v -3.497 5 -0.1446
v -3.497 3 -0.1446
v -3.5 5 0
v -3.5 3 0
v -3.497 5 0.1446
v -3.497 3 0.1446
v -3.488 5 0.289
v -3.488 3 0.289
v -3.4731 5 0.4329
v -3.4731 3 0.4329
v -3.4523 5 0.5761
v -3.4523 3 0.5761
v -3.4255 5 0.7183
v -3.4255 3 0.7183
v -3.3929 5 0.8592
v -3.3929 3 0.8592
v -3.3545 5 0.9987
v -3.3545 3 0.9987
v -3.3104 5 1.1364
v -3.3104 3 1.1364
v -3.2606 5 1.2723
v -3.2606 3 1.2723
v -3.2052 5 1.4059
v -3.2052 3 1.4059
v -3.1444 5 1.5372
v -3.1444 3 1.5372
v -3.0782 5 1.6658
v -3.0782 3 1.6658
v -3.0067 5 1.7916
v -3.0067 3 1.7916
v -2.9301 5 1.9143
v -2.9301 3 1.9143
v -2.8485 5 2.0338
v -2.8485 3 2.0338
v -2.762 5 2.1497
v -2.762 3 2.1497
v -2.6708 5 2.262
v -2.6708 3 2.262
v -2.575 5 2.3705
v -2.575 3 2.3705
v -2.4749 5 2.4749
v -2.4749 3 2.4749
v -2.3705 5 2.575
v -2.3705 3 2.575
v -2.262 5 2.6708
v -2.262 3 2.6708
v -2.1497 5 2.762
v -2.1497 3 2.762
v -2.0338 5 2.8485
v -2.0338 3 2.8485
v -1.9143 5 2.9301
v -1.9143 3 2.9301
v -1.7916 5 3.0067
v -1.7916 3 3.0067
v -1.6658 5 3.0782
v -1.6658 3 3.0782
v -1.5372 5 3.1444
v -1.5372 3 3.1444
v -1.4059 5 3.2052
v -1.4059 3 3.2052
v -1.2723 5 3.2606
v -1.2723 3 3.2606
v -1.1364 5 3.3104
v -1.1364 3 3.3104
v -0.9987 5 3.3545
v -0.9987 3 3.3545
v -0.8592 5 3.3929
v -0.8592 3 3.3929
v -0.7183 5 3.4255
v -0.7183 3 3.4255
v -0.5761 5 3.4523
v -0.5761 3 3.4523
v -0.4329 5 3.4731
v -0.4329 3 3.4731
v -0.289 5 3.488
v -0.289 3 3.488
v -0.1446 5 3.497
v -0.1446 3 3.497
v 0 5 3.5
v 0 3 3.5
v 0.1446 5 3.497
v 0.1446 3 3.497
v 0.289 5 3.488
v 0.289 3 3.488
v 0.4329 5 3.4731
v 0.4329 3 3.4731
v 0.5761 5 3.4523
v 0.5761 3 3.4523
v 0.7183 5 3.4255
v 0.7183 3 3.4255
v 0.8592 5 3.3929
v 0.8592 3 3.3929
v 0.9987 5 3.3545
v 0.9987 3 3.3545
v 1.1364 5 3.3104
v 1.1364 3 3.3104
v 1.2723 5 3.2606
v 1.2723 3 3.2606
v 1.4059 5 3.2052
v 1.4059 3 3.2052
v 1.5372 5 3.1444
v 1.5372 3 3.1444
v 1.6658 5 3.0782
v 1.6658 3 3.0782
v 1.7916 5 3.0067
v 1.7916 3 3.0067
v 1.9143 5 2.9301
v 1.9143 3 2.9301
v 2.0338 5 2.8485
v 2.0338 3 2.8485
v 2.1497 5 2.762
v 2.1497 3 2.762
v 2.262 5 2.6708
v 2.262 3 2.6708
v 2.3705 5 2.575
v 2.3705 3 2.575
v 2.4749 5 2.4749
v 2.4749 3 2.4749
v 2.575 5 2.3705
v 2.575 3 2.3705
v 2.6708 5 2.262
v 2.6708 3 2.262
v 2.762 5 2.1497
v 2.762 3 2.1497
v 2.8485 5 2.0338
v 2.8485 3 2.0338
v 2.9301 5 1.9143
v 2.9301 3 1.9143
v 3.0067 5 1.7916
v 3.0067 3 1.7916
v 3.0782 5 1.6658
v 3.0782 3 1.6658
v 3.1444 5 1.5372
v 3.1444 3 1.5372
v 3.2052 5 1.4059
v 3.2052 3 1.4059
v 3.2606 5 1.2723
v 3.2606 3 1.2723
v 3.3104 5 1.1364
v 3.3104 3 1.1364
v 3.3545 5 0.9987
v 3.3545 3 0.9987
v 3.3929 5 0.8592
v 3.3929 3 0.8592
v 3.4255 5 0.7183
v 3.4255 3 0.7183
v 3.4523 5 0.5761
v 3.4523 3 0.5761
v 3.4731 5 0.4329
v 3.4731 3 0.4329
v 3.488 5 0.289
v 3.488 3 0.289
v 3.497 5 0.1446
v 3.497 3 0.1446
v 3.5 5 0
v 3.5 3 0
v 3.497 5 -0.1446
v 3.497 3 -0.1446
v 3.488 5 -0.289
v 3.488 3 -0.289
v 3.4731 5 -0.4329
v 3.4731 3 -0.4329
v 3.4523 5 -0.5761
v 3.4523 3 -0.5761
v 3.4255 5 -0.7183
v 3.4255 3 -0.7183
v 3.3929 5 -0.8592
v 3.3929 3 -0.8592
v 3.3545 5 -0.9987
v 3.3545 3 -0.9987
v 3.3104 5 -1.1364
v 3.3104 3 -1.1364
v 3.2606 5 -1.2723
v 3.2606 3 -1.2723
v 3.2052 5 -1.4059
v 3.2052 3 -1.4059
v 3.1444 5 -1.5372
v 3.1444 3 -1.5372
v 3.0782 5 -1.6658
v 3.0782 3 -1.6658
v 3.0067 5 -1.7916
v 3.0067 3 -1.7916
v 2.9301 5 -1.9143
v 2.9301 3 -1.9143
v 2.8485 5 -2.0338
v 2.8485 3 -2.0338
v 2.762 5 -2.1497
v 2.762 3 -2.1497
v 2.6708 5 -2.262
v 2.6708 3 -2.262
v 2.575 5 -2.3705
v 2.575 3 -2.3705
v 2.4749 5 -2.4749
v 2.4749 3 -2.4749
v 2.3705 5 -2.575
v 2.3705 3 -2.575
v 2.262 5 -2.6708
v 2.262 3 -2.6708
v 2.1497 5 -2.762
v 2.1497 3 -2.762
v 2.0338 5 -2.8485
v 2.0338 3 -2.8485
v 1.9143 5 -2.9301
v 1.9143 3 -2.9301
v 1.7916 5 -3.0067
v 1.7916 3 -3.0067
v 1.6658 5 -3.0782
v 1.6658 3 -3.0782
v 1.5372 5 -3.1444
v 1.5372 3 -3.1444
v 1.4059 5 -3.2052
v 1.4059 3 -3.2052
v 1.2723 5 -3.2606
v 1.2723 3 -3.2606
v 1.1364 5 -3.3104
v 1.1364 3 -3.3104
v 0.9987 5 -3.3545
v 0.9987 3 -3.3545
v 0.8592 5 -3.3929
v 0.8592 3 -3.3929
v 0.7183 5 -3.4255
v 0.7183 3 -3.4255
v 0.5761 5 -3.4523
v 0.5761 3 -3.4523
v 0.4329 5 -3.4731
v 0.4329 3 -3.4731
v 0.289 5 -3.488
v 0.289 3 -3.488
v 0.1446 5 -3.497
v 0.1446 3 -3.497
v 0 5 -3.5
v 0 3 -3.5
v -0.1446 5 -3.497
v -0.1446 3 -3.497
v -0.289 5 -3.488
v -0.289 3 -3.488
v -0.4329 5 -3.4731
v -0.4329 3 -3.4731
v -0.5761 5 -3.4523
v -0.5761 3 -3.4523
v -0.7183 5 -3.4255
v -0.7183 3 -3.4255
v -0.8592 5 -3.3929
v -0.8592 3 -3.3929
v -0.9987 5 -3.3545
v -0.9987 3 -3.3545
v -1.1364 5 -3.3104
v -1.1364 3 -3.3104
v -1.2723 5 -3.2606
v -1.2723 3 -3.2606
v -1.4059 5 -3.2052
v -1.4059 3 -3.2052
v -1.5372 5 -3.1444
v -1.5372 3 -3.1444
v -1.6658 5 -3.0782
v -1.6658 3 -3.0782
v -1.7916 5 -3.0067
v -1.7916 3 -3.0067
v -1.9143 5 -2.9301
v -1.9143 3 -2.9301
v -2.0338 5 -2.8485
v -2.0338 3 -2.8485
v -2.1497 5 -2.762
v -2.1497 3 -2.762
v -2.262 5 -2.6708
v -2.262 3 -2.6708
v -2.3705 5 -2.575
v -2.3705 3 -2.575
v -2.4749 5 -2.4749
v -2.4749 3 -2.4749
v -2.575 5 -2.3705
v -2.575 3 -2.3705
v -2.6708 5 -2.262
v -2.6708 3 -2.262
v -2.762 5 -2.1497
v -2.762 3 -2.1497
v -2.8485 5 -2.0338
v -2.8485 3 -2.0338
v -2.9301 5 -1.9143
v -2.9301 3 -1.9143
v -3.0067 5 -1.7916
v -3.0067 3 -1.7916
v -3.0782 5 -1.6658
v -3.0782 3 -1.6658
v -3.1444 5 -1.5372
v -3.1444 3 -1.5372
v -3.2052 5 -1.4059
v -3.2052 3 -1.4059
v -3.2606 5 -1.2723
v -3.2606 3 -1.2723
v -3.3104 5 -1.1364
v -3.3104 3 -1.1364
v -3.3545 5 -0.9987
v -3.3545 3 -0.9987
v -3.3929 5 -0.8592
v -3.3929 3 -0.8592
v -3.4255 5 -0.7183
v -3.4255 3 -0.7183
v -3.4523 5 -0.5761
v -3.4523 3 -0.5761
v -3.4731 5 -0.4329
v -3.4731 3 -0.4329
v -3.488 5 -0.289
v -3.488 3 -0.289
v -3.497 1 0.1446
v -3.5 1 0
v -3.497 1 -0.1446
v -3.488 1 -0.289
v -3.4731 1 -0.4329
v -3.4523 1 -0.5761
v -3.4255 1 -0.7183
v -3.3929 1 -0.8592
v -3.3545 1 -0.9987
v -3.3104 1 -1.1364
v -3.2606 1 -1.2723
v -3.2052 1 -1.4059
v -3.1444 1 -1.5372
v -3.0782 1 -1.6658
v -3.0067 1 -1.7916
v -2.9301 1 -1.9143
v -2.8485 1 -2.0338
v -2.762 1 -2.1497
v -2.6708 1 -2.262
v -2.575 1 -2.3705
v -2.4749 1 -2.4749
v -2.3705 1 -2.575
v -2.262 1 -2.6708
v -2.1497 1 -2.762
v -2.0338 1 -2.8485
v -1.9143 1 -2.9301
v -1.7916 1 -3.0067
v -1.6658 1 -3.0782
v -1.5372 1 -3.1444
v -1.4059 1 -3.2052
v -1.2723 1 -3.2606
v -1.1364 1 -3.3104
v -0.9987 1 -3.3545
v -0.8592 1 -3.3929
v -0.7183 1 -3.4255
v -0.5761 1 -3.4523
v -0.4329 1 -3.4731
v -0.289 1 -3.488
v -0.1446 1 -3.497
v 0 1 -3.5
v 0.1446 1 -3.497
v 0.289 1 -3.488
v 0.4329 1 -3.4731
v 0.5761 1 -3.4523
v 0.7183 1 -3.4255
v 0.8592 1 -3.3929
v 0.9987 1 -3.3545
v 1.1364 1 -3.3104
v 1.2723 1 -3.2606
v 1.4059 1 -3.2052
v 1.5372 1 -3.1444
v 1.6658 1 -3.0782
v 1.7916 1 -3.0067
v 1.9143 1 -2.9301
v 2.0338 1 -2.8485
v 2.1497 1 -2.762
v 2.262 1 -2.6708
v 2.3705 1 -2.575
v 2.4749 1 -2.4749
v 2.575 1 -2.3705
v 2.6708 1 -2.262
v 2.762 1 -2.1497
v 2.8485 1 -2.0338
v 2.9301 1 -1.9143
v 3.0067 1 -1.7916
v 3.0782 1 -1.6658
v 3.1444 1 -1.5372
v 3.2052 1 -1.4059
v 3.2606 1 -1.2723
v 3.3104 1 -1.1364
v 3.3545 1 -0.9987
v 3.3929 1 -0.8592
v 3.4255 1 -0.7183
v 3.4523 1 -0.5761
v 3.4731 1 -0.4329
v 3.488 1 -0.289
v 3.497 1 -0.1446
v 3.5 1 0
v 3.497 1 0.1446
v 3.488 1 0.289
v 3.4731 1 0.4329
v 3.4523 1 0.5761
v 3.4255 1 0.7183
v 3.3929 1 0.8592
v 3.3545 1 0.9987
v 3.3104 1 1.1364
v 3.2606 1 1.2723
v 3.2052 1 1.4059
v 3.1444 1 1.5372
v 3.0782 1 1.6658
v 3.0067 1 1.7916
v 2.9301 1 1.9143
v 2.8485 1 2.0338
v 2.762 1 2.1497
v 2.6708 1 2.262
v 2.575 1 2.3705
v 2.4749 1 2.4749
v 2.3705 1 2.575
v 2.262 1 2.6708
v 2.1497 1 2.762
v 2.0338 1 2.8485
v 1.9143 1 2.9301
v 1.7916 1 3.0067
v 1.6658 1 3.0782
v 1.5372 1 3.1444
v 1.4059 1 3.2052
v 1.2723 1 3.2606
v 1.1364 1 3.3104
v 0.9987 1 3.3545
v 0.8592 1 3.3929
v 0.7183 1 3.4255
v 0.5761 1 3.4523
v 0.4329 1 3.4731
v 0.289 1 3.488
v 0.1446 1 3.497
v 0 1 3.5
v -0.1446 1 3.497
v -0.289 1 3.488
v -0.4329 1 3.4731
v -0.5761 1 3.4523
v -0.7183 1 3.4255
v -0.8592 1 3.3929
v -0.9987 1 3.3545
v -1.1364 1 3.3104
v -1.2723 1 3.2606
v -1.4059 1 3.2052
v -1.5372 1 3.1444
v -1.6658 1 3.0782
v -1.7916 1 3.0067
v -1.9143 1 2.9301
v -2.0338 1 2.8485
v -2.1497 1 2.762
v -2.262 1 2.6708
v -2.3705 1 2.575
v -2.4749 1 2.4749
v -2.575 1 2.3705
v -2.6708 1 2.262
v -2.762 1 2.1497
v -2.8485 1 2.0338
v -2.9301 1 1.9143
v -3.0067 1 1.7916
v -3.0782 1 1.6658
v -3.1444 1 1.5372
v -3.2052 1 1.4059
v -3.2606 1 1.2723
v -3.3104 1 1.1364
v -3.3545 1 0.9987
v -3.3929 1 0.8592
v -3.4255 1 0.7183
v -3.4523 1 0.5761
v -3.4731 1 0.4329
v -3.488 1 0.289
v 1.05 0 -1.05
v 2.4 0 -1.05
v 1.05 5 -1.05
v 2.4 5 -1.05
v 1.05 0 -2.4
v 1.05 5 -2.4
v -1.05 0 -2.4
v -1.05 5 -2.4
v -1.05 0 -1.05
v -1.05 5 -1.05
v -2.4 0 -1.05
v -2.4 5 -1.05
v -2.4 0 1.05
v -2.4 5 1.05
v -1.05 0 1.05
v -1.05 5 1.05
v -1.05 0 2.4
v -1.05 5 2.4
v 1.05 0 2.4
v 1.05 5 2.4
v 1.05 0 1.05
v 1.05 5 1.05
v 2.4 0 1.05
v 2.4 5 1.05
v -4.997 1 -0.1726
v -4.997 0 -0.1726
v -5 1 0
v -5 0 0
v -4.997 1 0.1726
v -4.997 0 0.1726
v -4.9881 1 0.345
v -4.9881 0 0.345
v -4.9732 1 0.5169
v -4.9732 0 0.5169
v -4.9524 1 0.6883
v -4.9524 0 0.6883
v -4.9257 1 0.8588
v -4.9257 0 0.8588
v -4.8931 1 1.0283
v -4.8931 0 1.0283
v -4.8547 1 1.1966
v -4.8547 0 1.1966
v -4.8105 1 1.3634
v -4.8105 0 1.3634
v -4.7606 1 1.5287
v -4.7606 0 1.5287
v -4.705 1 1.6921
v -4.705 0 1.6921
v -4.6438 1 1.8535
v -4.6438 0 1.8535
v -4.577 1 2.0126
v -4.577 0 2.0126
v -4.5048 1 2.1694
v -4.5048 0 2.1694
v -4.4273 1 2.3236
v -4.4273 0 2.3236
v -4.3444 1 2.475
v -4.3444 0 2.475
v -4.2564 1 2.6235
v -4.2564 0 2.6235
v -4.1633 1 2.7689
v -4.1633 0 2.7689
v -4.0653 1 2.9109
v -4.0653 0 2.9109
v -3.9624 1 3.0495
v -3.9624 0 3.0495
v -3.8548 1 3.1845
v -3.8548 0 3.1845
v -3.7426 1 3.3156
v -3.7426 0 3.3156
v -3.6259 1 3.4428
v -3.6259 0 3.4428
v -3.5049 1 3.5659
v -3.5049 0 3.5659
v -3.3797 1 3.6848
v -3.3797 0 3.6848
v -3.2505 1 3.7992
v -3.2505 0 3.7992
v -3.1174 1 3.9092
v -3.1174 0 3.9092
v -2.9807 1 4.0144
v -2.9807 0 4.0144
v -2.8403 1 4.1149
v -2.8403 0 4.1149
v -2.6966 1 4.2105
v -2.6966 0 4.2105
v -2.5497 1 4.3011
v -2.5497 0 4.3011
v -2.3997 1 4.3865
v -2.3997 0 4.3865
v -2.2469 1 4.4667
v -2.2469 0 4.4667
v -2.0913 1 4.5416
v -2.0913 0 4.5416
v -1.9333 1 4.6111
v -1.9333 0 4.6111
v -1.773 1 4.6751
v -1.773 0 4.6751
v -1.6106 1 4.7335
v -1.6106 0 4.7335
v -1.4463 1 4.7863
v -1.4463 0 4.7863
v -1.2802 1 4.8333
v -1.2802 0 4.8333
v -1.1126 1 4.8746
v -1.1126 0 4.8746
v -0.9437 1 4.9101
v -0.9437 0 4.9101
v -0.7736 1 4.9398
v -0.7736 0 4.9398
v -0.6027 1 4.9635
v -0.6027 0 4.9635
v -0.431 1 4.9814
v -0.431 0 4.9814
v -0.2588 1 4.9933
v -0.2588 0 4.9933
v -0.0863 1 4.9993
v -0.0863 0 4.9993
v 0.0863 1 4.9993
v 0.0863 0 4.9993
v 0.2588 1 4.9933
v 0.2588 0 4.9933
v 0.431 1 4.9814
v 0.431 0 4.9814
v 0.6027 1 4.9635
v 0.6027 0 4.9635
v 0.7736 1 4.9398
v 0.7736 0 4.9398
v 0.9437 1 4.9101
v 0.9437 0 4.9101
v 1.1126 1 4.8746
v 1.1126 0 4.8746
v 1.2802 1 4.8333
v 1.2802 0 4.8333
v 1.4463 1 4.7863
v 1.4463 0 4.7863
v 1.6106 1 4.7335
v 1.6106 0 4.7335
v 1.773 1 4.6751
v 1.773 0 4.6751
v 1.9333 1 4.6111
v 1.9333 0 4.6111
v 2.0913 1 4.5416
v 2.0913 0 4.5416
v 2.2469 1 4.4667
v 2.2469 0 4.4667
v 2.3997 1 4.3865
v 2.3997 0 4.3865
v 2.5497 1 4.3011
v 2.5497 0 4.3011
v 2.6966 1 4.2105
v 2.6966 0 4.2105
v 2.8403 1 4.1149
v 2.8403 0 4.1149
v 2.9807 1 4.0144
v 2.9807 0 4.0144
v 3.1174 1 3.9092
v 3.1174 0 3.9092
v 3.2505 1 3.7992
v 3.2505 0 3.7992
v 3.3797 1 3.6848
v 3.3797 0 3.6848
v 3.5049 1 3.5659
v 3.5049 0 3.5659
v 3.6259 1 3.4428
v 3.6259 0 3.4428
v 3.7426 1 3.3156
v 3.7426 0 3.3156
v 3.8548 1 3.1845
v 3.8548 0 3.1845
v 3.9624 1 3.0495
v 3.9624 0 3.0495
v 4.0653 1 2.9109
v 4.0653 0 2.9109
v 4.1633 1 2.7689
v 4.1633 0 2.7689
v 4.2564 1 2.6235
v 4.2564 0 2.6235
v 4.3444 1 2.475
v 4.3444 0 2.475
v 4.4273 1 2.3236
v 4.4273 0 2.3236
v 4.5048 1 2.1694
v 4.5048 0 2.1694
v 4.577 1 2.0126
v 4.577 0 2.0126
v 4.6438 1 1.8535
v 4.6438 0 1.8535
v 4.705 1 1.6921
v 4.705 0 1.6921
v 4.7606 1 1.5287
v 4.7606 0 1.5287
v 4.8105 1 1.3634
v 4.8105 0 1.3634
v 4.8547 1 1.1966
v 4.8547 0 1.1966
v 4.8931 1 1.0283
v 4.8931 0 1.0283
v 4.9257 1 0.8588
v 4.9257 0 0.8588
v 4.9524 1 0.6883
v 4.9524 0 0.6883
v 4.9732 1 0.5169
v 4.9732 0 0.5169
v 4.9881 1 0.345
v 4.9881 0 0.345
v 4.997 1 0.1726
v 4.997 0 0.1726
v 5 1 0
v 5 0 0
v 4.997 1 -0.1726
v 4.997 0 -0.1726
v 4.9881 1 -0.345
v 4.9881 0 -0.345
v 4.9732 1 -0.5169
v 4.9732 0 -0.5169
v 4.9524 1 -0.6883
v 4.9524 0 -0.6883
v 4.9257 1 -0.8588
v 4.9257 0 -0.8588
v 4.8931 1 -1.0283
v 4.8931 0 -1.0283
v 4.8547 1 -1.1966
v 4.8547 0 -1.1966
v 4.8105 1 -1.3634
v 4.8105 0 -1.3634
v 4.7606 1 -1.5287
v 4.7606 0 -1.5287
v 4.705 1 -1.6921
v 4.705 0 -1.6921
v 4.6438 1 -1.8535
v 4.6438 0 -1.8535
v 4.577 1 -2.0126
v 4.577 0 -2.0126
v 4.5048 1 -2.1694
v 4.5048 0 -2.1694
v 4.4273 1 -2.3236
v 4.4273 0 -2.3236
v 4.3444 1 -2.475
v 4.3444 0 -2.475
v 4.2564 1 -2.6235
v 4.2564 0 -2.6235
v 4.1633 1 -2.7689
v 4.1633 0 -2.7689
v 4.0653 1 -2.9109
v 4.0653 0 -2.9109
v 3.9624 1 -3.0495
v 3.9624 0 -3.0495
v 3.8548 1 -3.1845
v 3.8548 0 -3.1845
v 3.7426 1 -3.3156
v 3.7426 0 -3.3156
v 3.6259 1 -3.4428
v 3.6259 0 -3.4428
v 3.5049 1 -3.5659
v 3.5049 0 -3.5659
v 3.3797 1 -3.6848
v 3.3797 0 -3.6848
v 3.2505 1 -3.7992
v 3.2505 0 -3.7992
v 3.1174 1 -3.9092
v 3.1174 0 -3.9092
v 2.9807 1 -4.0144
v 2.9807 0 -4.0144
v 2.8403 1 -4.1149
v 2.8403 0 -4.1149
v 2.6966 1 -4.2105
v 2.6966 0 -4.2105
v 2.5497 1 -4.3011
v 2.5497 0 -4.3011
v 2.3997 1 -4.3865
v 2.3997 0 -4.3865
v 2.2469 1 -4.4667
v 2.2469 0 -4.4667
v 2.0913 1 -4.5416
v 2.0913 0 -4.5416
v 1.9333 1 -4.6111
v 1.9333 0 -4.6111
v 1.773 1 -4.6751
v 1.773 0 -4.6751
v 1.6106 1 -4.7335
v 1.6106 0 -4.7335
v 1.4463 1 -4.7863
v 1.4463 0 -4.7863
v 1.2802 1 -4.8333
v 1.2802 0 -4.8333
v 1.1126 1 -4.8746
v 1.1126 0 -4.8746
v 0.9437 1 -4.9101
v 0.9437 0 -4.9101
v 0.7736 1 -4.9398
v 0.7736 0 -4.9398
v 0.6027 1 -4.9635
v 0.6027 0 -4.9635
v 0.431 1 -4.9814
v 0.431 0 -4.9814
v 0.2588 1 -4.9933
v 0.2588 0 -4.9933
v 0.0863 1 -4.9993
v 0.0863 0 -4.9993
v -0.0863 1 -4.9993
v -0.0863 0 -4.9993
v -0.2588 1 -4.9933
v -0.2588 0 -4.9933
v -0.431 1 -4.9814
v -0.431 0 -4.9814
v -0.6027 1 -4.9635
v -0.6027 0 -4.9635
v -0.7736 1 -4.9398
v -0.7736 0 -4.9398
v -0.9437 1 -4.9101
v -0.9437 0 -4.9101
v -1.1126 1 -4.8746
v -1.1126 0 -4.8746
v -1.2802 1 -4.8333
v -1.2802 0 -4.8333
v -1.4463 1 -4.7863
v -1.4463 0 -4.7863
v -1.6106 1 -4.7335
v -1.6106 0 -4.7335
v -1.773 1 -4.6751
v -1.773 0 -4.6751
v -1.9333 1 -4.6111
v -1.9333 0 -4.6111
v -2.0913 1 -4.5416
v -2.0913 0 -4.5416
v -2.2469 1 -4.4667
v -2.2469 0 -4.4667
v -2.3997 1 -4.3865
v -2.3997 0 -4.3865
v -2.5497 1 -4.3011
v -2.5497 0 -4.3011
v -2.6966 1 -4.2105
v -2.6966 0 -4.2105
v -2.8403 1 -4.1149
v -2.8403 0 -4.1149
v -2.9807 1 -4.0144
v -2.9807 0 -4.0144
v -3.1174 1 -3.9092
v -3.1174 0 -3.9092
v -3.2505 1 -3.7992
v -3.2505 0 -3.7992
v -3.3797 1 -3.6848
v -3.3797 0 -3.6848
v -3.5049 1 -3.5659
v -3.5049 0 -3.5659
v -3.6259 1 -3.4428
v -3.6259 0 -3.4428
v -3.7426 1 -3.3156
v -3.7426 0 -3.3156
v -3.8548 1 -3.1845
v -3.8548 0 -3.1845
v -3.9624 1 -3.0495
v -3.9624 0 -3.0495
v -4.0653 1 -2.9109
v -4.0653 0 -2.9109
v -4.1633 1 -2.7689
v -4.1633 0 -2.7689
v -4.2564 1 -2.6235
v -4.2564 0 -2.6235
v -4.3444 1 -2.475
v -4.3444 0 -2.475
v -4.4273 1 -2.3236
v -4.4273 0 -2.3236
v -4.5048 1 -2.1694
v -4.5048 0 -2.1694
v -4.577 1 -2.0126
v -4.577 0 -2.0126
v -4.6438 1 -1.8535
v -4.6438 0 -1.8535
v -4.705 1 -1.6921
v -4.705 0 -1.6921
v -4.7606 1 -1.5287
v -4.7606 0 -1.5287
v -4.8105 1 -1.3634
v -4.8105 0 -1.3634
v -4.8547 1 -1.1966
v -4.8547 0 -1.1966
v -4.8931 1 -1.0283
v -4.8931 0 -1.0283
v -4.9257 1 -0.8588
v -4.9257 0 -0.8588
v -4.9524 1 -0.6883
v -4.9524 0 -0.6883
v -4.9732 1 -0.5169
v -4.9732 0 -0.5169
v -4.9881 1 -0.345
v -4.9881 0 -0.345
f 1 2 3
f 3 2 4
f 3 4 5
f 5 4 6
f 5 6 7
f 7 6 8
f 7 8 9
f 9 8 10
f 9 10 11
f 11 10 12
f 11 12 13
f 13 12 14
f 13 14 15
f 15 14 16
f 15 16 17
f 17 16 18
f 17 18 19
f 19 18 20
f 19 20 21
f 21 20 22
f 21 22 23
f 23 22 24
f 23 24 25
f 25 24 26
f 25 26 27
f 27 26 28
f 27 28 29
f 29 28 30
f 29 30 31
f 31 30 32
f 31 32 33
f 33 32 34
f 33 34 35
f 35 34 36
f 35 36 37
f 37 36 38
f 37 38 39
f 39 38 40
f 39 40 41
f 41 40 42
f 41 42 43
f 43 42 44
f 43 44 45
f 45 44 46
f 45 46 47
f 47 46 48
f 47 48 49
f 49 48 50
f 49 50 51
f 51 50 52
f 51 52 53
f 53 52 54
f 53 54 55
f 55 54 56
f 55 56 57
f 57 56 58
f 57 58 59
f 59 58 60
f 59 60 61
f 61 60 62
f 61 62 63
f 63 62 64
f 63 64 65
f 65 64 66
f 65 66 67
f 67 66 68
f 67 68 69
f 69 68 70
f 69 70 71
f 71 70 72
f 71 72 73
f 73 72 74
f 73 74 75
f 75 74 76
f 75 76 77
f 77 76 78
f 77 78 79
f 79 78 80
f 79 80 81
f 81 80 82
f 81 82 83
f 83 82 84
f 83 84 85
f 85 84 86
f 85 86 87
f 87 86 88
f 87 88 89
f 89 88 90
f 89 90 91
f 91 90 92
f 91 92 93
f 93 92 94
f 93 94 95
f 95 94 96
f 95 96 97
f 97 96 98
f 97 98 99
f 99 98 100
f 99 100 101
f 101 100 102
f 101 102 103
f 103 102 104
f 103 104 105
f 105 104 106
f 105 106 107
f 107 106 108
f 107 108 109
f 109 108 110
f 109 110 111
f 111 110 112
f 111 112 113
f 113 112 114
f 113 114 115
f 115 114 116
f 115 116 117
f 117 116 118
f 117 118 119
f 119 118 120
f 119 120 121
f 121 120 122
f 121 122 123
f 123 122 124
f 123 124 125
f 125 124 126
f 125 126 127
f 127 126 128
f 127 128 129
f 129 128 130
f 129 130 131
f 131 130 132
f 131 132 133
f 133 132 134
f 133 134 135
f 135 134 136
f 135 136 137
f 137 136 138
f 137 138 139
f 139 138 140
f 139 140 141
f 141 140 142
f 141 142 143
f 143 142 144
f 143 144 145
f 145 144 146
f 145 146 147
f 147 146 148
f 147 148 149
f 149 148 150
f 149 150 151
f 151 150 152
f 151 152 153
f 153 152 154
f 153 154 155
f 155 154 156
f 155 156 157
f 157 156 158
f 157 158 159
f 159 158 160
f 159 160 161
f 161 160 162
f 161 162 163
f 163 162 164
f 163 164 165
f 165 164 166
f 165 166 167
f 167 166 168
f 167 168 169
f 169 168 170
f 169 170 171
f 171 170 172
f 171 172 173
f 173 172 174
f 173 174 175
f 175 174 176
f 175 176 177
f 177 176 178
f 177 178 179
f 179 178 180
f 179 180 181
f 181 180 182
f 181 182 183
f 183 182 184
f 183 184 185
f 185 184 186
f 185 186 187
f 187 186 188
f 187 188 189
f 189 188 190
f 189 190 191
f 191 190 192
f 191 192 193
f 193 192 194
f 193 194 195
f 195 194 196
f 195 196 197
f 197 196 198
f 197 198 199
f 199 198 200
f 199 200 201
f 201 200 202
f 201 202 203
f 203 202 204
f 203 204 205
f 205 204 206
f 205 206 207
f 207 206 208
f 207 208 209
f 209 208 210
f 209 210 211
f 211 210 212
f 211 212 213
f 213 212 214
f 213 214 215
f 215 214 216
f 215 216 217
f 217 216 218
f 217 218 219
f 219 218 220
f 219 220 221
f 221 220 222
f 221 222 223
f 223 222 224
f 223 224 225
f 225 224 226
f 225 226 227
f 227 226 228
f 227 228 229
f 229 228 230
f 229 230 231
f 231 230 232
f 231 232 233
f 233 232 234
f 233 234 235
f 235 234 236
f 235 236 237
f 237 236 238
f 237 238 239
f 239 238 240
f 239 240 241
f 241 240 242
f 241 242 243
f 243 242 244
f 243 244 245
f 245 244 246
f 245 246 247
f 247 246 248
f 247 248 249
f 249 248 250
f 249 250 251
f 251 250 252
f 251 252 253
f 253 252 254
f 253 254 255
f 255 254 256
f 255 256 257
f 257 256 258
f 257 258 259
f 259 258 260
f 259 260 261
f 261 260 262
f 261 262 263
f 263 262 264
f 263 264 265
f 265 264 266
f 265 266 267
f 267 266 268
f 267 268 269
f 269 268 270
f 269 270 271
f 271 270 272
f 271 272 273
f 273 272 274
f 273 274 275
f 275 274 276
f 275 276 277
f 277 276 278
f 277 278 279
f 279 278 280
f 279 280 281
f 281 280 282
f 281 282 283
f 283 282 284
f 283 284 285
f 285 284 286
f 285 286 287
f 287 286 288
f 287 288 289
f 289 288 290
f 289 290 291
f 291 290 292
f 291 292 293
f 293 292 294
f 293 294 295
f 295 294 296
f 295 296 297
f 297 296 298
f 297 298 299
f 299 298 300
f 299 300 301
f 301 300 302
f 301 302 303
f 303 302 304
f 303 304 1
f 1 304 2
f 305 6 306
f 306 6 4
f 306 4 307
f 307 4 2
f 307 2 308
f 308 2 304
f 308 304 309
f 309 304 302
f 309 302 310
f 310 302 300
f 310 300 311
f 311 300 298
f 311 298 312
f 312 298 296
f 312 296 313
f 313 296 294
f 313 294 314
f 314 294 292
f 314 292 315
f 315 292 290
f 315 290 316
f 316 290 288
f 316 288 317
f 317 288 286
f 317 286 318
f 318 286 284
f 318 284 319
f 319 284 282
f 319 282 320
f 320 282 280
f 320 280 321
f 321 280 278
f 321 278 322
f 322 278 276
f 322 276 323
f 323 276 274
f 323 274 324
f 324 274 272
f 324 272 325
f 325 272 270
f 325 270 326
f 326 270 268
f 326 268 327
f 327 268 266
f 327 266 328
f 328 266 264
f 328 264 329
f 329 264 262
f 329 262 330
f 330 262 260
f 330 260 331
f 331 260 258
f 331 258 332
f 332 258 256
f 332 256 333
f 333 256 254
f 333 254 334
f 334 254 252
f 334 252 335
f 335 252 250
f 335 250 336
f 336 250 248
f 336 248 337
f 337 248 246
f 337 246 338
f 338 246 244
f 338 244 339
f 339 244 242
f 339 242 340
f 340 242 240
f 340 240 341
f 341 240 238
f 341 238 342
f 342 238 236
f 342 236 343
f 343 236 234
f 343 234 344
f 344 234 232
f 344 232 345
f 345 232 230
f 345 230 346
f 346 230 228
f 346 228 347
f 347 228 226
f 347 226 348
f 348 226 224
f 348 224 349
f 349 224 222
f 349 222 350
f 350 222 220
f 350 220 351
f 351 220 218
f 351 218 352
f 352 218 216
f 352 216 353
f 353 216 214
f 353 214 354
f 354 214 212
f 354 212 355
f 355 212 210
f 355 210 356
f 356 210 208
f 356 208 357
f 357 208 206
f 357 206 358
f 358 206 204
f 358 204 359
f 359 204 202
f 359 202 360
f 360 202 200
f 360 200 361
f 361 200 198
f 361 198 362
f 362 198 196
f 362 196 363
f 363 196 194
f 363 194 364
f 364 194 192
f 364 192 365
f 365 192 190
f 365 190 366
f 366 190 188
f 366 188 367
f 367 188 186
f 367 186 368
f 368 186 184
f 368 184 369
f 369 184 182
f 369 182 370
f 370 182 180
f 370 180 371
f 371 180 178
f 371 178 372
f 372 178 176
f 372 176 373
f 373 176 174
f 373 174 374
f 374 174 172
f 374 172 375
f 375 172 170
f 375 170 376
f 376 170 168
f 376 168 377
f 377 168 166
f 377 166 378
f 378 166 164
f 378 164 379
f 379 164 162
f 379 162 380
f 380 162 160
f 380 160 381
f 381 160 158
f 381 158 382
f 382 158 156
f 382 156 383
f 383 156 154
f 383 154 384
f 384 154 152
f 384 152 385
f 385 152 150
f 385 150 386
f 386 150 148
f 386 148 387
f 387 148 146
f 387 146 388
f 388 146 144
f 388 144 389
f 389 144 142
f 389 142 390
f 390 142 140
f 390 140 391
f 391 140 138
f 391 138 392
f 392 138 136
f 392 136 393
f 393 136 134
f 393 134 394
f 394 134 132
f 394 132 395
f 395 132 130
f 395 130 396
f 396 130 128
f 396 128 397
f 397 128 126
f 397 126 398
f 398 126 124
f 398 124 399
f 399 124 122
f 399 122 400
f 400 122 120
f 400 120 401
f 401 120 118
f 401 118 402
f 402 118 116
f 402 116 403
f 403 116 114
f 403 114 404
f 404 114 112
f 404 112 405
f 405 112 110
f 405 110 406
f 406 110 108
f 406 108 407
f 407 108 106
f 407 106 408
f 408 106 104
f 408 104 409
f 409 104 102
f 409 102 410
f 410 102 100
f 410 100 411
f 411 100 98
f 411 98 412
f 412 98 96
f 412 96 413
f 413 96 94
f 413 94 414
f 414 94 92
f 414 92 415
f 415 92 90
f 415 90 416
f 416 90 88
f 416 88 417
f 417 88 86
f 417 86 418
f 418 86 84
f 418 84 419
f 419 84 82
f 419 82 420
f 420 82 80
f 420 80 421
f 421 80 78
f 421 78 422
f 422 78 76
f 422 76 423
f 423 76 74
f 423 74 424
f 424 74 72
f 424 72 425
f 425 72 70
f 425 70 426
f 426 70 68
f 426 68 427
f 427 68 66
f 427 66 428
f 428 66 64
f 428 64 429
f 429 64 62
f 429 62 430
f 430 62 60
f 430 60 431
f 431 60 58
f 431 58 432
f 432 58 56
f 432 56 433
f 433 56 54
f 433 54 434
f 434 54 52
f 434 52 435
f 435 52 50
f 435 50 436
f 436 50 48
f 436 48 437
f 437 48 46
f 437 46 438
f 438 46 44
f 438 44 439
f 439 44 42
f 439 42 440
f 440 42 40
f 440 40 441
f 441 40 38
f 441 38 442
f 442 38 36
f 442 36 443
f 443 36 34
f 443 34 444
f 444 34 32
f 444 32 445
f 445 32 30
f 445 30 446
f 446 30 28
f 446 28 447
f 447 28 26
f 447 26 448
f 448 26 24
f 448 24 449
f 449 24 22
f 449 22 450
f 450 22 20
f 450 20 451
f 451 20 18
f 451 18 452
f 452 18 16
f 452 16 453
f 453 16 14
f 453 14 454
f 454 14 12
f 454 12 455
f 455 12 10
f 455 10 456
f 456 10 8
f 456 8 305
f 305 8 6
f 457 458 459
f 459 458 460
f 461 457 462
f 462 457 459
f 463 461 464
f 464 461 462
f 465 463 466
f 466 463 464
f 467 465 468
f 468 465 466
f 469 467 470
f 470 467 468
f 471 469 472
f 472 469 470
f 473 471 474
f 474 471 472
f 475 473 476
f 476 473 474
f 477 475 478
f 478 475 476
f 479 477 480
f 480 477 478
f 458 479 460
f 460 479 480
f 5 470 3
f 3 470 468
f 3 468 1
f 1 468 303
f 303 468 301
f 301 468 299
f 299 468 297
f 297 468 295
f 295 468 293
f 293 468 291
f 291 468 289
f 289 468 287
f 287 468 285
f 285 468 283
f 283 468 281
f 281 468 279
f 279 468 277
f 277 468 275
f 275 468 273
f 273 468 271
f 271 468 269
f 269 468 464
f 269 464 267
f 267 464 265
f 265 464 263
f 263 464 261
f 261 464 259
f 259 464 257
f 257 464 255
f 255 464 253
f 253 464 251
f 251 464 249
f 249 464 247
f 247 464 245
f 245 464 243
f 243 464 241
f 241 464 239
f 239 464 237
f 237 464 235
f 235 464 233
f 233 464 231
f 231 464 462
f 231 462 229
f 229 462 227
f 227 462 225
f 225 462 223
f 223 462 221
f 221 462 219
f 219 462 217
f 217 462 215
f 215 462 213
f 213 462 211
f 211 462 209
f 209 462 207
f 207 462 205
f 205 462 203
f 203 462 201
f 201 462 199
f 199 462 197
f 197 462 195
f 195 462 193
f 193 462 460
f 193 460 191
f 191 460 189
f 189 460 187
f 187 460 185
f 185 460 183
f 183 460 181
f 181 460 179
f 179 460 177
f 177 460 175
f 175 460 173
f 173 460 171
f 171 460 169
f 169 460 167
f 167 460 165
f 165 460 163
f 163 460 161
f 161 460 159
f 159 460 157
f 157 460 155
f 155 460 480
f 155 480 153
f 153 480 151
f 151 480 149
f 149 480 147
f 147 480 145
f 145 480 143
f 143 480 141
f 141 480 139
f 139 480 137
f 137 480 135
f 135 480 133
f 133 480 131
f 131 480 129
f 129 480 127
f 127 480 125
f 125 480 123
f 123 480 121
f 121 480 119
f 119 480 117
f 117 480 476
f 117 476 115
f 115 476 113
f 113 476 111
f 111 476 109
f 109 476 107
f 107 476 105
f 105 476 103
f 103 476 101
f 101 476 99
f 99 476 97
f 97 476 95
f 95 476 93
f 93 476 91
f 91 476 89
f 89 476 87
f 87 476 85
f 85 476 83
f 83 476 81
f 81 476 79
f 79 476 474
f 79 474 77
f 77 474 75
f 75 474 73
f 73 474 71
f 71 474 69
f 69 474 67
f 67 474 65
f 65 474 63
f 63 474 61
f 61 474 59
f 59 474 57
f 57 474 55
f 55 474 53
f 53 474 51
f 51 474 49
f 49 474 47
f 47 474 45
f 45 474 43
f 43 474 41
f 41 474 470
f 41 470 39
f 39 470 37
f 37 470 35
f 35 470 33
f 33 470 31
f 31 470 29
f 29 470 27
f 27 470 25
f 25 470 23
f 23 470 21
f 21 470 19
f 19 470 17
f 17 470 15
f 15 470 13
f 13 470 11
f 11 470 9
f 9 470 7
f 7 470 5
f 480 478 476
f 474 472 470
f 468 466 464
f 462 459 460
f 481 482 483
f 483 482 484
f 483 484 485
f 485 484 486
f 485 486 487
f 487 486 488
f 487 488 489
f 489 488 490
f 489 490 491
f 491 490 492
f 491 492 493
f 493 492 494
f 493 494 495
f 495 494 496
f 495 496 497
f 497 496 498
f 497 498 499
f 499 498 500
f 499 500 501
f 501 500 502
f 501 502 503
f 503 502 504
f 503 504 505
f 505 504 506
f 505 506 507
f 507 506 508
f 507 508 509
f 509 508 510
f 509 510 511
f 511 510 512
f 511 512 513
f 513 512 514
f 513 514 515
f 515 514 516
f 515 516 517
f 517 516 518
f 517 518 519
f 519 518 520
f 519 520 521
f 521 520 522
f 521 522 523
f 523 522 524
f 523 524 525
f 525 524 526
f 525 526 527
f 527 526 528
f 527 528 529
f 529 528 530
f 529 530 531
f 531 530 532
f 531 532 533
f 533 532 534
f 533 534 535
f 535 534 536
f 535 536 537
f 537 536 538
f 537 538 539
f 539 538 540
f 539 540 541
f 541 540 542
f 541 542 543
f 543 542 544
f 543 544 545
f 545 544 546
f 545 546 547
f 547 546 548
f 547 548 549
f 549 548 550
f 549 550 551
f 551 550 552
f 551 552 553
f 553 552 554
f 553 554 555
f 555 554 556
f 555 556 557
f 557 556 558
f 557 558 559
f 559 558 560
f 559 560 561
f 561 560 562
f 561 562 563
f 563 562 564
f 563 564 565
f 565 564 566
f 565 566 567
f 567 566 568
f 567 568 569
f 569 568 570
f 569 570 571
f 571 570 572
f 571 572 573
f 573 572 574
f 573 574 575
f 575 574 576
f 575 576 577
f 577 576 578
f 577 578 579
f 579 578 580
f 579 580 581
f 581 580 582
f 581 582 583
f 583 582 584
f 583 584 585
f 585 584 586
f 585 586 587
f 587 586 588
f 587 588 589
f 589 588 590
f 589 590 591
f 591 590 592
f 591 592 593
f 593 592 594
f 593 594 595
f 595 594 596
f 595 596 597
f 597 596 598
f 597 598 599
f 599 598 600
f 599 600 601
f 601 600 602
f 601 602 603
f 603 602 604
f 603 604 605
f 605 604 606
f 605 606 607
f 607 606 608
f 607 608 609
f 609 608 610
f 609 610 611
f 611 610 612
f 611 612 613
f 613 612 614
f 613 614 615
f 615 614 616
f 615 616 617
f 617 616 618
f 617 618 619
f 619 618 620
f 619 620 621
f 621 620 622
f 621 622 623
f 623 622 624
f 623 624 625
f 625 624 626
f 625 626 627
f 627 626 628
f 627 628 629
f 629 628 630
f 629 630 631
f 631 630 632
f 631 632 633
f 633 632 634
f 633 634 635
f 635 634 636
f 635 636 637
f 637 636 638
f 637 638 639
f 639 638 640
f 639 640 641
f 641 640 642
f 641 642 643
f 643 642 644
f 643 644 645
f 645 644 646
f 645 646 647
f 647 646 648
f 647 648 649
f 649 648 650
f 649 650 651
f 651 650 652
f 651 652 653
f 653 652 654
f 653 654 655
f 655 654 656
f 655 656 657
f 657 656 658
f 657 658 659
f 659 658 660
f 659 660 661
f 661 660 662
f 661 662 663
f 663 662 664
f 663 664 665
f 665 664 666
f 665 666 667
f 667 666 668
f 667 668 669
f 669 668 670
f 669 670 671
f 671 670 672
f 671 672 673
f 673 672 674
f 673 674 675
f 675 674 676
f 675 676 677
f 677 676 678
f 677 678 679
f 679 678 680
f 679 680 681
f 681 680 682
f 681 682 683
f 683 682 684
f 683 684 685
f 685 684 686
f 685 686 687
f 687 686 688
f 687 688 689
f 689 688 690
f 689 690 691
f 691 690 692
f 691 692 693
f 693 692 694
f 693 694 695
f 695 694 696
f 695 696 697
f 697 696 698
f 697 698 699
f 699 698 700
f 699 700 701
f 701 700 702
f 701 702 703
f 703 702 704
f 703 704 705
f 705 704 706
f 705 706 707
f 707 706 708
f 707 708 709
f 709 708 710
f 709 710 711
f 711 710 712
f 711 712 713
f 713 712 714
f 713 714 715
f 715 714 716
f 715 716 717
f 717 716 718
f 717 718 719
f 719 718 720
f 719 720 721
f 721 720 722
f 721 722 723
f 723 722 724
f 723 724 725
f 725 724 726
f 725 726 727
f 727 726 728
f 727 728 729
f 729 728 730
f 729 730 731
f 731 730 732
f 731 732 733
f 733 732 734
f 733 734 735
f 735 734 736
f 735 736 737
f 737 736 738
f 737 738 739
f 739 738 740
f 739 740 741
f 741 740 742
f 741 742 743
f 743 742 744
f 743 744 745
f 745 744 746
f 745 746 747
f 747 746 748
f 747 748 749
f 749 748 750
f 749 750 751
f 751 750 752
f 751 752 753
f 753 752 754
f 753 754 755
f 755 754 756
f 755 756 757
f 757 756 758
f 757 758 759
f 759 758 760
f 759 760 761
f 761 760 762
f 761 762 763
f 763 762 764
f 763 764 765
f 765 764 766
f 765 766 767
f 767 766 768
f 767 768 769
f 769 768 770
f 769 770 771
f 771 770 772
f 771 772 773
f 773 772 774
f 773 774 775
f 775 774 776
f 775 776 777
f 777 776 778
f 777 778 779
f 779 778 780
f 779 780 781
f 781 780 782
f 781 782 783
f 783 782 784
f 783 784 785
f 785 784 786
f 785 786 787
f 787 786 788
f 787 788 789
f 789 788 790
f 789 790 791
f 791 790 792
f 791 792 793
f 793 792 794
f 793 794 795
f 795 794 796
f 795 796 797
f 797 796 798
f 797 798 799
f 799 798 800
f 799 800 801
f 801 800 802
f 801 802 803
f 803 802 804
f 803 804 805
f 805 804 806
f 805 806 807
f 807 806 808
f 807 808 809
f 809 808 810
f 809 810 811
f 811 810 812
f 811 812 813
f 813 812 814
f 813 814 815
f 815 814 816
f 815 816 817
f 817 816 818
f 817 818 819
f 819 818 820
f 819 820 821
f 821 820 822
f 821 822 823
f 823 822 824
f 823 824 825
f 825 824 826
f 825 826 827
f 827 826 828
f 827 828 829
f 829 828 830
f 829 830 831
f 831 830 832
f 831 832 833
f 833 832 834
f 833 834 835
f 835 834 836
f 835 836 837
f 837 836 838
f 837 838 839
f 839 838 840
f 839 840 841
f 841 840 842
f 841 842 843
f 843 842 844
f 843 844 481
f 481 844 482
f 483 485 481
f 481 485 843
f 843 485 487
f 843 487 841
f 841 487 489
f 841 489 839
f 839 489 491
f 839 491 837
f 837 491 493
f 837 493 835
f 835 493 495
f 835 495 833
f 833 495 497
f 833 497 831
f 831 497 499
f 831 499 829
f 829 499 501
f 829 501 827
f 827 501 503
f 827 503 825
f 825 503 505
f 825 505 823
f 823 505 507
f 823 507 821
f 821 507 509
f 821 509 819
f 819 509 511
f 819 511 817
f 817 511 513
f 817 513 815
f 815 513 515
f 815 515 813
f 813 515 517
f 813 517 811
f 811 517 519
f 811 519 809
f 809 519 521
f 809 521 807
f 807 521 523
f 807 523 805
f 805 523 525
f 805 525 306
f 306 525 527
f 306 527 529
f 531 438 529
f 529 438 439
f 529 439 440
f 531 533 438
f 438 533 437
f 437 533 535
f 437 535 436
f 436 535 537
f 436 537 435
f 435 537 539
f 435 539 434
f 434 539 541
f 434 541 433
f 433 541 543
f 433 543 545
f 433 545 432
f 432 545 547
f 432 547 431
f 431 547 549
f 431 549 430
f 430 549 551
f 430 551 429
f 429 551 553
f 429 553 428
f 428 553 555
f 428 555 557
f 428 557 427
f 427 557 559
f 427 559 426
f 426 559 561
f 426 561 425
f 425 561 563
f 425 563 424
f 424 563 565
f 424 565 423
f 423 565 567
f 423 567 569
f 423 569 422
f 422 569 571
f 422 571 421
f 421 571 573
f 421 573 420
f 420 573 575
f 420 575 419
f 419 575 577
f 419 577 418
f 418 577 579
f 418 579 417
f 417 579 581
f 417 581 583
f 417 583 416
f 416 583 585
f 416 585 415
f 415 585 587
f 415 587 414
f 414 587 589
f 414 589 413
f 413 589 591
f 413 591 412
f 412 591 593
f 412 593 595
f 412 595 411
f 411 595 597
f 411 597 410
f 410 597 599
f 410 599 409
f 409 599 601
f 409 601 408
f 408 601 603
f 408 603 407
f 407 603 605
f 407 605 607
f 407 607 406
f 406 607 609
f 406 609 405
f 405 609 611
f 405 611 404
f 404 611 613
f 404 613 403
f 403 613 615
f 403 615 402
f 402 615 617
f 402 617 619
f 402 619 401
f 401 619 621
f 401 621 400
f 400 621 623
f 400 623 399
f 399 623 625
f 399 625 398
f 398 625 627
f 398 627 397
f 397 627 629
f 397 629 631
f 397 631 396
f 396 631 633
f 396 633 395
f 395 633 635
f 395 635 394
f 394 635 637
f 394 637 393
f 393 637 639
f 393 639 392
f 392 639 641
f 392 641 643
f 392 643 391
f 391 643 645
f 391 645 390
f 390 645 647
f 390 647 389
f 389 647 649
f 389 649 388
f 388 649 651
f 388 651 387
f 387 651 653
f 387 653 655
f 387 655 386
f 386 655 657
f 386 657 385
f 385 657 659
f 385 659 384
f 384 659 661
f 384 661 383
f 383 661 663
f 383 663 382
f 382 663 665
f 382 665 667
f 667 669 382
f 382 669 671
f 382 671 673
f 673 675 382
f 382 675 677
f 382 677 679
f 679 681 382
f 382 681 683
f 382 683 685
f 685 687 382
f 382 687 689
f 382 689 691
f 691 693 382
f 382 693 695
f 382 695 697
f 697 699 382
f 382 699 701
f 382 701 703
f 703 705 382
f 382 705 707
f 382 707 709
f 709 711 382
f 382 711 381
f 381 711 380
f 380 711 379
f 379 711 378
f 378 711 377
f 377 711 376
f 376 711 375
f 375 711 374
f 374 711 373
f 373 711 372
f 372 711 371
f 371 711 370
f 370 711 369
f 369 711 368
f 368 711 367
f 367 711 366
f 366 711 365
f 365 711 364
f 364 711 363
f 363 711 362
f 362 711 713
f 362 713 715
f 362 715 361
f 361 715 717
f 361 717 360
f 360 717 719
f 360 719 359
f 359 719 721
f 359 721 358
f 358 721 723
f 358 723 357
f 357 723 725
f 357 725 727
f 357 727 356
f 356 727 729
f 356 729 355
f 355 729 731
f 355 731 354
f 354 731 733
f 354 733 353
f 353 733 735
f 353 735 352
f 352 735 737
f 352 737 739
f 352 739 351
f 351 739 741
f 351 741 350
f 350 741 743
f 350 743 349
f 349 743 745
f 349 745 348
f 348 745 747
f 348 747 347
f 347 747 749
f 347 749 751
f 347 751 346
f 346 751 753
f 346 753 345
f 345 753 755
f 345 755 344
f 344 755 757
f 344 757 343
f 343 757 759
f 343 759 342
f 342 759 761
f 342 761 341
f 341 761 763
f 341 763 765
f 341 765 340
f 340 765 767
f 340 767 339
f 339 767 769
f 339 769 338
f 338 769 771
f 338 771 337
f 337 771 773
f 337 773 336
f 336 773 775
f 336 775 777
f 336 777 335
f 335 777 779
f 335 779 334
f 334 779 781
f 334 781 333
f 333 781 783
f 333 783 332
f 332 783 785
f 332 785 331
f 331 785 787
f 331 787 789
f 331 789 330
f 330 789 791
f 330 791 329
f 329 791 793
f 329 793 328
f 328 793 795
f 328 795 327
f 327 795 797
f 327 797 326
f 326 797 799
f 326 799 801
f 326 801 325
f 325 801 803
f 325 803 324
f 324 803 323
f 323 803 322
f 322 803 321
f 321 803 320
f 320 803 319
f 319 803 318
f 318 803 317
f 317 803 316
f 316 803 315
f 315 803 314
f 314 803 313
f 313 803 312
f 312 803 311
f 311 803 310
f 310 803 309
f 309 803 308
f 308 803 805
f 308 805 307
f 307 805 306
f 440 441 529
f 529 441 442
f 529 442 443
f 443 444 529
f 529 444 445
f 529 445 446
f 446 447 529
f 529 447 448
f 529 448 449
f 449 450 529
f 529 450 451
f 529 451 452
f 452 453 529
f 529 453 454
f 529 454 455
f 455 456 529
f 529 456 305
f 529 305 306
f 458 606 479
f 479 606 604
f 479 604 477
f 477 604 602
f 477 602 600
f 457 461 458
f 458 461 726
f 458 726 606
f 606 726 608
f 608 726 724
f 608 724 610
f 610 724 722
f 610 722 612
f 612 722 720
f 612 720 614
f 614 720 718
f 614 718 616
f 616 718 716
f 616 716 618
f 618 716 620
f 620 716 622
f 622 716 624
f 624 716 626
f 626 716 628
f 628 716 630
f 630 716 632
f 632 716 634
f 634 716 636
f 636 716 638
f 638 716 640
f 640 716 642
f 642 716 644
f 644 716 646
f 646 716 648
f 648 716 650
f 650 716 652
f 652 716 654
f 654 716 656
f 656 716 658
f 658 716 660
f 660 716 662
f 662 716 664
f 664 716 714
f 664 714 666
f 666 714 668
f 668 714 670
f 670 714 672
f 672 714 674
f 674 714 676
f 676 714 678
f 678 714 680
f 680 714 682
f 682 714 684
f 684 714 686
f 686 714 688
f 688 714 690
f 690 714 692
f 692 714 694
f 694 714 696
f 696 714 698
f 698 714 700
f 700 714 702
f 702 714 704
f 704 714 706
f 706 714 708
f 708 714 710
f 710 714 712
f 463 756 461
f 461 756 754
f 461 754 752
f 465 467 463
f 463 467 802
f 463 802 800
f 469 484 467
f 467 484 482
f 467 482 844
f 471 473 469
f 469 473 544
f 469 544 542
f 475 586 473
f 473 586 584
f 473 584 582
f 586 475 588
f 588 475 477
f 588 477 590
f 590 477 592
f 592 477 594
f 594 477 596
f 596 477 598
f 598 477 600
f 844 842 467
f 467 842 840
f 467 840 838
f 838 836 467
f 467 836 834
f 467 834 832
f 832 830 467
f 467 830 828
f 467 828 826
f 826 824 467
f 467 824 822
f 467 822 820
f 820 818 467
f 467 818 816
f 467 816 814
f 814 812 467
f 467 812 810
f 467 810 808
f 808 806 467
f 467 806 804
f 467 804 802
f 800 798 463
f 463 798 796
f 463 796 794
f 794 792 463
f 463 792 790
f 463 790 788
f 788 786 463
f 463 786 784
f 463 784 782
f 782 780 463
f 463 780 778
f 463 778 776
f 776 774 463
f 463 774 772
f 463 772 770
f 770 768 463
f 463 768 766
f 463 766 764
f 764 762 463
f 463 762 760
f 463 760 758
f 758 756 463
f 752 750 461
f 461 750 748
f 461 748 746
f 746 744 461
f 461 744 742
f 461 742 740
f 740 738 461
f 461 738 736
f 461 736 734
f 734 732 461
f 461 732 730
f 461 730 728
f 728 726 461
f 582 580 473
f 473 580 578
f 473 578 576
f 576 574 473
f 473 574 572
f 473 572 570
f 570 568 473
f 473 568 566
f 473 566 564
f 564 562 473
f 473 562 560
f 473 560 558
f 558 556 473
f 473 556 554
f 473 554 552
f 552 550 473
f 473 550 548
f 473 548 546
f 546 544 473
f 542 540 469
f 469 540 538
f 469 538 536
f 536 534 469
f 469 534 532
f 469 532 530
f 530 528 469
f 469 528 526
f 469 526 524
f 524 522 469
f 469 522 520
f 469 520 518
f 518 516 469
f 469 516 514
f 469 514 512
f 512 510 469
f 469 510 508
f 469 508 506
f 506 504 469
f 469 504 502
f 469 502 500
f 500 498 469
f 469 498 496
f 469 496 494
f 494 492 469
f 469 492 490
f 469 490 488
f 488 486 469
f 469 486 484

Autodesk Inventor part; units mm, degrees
ref_plane "YZ Plane" through (0, 0, 0) normal (1, 0, 0) x (0, 1, 0)
ref_plane "XZ Plane" through (0, 0, 0) normal (0, 1, 0) x (-1, 0, 0)
ref_plane "XY Plane" through (0, 0, 0) normal (0, 0, 1) x (1, 0, 0)
sketch "Szkic1" plane through (0, 0, 0) normal (0, 1, 0) x (-1, 0, 0)
  circle A0 centre (0, 0) radius 5
  circle A1 centre (0, 0) radius 3.5
  line L0 (2.4, 1.05) -> (-2.4, 1.05)
  line L1 (-2.4, 1.05) -> (-2.4, -1.05)
  line L2 (-2.4, -1.05) -> (2.4, -1.05)
  line L3 (2.4, -1.05) -> (2.4, 1.05)
  line L4 (1.05, 2.4) -> (-1.05, 2.4)
  line L5 (-1.05, 2.4) -> (-1.05, -2.4)
  line L6 (-1.05, -2.4) -> (1.05, -2.4)
  line L7 (1.05, -2.4) -> (1.05, 2.4)
  point P0 (-1.05, 0)
  point P1 (0, -1.05)
  point P2 (0, 2.4)
  point P3 (2.4, 0)
  point P4 (-1.05, 1.05)
  point P5 (1.05, 1.05)
  point P6 (1.05, -1.05)
  point P7 (-1.05, -1.05)
  dimension "d0" = 10
  dimension "d1" = 7
  dimension "d2" = 4.8
  dimension "d3" = 4.8
  dimension "d4" = 2.1
  dimension "d5" = 2.1
extrude "Wyciągnięcie proste1" add sketch "Szkic1" along normal blind 1 contours A0
extrude "Wyciągnięcie proste2" add sketch "Szkic1" along normal blind 5 contours A1
equation "\"d3\" = d2"
equation "\"d5\" = d4"
properties part number "lego1"
